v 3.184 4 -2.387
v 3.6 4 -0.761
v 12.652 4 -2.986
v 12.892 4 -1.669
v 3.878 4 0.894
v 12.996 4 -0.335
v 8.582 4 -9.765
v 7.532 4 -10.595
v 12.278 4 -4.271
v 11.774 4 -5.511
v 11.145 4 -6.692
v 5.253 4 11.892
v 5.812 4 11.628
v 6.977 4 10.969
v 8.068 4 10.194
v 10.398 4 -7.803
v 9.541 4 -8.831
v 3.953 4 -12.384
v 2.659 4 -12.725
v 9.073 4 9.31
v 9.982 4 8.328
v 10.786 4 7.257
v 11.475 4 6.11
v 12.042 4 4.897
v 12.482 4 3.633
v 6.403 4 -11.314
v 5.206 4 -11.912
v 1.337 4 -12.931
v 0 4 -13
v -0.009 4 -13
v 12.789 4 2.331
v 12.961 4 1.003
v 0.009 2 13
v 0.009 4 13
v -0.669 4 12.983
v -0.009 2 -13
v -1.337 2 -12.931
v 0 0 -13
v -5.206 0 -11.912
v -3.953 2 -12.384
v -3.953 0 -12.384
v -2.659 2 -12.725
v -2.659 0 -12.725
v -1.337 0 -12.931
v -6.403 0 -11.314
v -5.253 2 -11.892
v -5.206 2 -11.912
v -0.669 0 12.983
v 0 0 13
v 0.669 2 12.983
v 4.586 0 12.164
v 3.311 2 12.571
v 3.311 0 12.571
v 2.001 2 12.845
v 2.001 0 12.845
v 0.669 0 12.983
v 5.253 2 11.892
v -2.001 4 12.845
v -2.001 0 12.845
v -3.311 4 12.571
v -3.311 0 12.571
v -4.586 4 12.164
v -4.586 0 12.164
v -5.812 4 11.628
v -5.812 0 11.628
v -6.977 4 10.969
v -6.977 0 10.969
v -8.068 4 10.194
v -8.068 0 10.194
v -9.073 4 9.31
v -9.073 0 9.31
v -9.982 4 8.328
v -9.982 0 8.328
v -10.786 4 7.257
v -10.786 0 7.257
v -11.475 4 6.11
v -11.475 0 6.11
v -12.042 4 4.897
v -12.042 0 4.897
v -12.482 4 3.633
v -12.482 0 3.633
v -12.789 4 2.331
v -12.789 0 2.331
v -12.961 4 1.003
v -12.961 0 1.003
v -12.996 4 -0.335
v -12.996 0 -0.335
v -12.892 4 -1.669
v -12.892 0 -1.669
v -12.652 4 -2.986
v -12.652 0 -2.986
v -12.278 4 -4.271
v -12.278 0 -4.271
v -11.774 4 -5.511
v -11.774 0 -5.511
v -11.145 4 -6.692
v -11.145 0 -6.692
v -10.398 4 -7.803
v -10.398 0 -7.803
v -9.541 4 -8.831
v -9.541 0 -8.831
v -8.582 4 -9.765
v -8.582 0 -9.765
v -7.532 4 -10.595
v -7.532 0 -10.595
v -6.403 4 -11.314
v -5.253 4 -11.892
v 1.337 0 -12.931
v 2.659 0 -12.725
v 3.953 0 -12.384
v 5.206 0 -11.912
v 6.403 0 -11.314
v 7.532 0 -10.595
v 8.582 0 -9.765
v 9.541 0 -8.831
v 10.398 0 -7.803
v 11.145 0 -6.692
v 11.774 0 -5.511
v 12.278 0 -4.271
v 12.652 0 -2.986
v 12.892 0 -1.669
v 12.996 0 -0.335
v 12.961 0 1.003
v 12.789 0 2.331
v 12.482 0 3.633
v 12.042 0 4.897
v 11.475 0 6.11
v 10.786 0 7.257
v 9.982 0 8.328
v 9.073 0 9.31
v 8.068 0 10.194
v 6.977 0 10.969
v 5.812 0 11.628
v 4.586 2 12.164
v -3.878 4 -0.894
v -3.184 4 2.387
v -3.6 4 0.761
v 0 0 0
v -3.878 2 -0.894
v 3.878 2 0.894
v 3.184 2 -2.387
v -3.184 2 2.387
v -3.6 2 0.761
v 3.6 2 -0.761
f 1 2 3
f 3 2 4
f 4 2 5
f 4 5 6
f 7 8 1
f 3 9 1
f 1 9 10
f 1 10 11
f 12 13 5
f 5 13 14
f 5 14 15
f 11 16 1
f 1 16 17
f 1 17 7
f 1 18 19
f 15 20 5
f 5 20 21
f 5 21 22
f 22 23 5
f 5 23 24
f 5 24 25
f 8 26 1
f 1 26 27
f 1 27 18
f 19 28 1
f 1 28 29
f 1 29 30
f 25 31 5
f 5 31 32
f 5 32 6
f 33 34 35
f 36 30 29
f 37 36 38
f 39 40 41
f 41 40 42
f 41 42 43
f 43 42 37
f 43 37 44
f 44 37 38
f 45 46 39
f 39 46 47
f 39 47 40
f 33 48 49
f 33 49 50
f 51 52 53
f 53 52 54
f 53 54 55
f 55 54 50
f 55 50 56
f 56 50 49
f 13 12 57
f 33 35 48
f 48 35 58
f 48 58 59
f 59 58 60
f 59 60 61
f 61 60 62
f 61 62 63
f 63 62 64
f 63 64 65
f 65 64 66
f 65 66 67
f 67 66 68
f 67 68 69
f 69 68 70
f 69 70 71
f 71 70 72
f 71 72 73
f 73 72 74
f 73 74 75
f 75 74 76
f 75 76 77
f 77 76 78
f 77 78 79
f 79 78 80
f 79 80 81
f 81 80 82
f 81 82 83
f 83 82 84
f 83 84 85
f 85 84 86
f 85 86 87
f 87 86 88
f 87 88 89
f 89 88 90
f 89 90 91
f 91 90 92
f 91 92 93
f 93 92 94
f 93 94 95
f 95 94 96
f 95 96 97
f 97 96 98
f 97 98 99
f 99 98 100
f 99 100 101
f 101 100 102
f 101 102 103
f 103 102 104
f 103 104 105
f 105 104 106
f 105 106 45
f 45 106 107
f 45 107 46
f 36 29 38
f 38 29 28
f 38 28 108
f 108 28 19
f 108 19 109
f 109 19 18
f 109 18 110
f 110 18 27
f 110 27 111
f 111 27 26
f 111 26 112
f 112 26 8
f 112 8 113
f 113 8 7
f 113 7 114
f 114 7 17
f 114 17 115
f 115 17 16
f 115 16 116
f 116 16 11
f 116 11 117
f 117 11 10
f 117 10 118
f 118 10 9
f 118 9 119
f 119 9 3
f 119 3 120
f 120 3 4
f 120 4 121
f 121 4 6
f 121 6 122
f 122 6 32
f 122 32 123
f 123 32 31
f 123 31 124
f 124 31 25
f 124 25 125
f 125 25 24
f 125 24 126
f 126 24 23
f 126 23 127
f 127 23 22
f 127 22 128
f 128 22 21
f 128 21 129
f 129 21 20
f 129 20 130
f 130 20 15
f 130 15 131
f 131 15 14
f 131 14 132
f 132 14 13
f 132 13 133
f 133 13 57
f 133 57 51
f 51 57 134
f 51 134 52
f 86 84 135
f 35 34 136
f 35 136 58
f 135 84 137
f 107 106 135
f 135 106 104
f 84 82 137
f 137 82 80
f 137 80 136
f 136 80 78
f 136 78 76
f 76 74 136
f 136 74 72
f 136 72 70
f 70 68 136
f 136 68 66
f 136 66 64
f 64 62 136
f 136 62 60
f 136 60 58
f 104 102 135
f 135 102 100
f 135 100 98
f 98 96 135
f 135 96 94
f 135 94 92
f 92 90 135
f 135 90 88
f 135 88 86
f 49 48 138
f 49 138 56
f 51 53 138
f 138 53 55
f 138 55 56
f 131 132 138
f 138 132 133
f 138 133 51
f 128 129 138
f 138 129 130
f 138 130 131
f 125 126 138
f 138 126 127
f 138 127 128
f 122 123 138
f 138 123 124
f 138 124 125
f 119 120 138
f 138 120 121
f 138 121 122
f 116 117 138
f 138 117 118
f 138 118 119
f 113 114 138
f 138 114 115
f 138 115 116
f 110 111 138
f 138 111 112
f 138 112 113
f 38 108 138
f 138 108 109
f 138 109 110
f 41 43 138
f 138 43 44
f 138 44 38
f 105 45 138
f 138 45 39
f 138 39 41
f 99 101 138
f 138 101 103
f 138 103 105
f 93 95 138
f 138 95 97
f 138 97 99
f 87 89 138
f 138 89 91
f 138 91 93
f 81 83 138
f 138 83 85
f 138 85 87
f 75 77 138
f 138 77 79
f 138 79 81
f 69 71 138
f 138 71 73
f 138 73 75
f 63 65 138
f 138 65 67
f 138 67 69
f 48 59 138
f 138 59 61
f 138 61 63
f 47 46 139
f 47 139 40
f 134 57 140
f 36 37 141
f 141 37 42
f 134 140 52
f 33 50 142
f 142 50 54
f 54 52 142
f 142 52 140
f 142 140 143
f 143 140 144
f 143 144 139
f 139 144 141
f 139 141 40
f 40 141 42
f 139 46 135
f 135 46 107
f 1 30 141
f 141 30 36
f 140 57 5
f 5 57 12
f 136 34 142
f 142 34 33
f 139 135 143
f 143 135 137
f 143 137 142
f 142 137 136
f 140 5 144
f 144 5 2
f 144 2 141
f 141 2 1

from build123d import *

# Parameters (mm, degrees)
CROQUIS1_R              = 13
SALIENTE_EXTRUIR1_DEPTH = 4
CORTAR_EXTRUIR1_DEPTH   = 2


with BuildPart() as part:
    # Croquis1 → Saliente-Extruir1 (new body)
    with BuildSketch(Plane(origin=(0, 0, 0), x_dir=(1, 0, 0), z_dir=(0, 1, 0))):
        with Locations(Location((0, 0, 0), (0, 0, 270))):
            Circle(CROQUIS1_R)
    extrude(amount=SALIENTE_EXTRUIR1_DEPTH)

    # Croquis4 → Cortar-Extruir1 (cut)
    with BuildSketch(Plane(origin=(0, 4, 0), x_dir=(1, 0, 0), z_dir=(0, 1, 0))):
        with BuildLine():
            Line((-3.184010772, -2.387150019), (0.656665628, -15.151411134))
            ThreePointArc((0.656665628, -15.151411134), (3.567700163, -16.877026265), (5.531329778, -14.120936937))
            Line((5.531329778, -14.120936937), (3.877699322, -0.894347681))
            ThreePointArc((3.877699322, -0.894347681), (3.756105044, -0.063772705), (3.599765133, 0.76096834))
            ThreePointArc((3.599765133, 0.76096834), (3.408954999, 1.57842259), (3.184010772, 2.387150019))
            Line((3.184010772, 2.387150019), (-0.656665628, 15.151411134))
            ThreePointArc((-0.656665628, 15.151411134), (-3.567700163, 16.877026265), (-5.531329778, 14.120936937))
            Line((-5.531329778, 14.120936937), (-3.877699322, 0.894347681))
            ThreePointArc((-3.877699322, 0.894347681), (-3.756105044, 0.063772705), (-3.599765133, -0.76096834))
            ThreePointArc((-3.599765133, -0.76096834), (-3.408954999, -1.57842259), (-3.184010772, -2.387150019))
        make_face()
    extrude(amount=-CORTAR_EXTRUIR1_DEPTH, mode=Mode.SUBTRACT)


solid = part.part
